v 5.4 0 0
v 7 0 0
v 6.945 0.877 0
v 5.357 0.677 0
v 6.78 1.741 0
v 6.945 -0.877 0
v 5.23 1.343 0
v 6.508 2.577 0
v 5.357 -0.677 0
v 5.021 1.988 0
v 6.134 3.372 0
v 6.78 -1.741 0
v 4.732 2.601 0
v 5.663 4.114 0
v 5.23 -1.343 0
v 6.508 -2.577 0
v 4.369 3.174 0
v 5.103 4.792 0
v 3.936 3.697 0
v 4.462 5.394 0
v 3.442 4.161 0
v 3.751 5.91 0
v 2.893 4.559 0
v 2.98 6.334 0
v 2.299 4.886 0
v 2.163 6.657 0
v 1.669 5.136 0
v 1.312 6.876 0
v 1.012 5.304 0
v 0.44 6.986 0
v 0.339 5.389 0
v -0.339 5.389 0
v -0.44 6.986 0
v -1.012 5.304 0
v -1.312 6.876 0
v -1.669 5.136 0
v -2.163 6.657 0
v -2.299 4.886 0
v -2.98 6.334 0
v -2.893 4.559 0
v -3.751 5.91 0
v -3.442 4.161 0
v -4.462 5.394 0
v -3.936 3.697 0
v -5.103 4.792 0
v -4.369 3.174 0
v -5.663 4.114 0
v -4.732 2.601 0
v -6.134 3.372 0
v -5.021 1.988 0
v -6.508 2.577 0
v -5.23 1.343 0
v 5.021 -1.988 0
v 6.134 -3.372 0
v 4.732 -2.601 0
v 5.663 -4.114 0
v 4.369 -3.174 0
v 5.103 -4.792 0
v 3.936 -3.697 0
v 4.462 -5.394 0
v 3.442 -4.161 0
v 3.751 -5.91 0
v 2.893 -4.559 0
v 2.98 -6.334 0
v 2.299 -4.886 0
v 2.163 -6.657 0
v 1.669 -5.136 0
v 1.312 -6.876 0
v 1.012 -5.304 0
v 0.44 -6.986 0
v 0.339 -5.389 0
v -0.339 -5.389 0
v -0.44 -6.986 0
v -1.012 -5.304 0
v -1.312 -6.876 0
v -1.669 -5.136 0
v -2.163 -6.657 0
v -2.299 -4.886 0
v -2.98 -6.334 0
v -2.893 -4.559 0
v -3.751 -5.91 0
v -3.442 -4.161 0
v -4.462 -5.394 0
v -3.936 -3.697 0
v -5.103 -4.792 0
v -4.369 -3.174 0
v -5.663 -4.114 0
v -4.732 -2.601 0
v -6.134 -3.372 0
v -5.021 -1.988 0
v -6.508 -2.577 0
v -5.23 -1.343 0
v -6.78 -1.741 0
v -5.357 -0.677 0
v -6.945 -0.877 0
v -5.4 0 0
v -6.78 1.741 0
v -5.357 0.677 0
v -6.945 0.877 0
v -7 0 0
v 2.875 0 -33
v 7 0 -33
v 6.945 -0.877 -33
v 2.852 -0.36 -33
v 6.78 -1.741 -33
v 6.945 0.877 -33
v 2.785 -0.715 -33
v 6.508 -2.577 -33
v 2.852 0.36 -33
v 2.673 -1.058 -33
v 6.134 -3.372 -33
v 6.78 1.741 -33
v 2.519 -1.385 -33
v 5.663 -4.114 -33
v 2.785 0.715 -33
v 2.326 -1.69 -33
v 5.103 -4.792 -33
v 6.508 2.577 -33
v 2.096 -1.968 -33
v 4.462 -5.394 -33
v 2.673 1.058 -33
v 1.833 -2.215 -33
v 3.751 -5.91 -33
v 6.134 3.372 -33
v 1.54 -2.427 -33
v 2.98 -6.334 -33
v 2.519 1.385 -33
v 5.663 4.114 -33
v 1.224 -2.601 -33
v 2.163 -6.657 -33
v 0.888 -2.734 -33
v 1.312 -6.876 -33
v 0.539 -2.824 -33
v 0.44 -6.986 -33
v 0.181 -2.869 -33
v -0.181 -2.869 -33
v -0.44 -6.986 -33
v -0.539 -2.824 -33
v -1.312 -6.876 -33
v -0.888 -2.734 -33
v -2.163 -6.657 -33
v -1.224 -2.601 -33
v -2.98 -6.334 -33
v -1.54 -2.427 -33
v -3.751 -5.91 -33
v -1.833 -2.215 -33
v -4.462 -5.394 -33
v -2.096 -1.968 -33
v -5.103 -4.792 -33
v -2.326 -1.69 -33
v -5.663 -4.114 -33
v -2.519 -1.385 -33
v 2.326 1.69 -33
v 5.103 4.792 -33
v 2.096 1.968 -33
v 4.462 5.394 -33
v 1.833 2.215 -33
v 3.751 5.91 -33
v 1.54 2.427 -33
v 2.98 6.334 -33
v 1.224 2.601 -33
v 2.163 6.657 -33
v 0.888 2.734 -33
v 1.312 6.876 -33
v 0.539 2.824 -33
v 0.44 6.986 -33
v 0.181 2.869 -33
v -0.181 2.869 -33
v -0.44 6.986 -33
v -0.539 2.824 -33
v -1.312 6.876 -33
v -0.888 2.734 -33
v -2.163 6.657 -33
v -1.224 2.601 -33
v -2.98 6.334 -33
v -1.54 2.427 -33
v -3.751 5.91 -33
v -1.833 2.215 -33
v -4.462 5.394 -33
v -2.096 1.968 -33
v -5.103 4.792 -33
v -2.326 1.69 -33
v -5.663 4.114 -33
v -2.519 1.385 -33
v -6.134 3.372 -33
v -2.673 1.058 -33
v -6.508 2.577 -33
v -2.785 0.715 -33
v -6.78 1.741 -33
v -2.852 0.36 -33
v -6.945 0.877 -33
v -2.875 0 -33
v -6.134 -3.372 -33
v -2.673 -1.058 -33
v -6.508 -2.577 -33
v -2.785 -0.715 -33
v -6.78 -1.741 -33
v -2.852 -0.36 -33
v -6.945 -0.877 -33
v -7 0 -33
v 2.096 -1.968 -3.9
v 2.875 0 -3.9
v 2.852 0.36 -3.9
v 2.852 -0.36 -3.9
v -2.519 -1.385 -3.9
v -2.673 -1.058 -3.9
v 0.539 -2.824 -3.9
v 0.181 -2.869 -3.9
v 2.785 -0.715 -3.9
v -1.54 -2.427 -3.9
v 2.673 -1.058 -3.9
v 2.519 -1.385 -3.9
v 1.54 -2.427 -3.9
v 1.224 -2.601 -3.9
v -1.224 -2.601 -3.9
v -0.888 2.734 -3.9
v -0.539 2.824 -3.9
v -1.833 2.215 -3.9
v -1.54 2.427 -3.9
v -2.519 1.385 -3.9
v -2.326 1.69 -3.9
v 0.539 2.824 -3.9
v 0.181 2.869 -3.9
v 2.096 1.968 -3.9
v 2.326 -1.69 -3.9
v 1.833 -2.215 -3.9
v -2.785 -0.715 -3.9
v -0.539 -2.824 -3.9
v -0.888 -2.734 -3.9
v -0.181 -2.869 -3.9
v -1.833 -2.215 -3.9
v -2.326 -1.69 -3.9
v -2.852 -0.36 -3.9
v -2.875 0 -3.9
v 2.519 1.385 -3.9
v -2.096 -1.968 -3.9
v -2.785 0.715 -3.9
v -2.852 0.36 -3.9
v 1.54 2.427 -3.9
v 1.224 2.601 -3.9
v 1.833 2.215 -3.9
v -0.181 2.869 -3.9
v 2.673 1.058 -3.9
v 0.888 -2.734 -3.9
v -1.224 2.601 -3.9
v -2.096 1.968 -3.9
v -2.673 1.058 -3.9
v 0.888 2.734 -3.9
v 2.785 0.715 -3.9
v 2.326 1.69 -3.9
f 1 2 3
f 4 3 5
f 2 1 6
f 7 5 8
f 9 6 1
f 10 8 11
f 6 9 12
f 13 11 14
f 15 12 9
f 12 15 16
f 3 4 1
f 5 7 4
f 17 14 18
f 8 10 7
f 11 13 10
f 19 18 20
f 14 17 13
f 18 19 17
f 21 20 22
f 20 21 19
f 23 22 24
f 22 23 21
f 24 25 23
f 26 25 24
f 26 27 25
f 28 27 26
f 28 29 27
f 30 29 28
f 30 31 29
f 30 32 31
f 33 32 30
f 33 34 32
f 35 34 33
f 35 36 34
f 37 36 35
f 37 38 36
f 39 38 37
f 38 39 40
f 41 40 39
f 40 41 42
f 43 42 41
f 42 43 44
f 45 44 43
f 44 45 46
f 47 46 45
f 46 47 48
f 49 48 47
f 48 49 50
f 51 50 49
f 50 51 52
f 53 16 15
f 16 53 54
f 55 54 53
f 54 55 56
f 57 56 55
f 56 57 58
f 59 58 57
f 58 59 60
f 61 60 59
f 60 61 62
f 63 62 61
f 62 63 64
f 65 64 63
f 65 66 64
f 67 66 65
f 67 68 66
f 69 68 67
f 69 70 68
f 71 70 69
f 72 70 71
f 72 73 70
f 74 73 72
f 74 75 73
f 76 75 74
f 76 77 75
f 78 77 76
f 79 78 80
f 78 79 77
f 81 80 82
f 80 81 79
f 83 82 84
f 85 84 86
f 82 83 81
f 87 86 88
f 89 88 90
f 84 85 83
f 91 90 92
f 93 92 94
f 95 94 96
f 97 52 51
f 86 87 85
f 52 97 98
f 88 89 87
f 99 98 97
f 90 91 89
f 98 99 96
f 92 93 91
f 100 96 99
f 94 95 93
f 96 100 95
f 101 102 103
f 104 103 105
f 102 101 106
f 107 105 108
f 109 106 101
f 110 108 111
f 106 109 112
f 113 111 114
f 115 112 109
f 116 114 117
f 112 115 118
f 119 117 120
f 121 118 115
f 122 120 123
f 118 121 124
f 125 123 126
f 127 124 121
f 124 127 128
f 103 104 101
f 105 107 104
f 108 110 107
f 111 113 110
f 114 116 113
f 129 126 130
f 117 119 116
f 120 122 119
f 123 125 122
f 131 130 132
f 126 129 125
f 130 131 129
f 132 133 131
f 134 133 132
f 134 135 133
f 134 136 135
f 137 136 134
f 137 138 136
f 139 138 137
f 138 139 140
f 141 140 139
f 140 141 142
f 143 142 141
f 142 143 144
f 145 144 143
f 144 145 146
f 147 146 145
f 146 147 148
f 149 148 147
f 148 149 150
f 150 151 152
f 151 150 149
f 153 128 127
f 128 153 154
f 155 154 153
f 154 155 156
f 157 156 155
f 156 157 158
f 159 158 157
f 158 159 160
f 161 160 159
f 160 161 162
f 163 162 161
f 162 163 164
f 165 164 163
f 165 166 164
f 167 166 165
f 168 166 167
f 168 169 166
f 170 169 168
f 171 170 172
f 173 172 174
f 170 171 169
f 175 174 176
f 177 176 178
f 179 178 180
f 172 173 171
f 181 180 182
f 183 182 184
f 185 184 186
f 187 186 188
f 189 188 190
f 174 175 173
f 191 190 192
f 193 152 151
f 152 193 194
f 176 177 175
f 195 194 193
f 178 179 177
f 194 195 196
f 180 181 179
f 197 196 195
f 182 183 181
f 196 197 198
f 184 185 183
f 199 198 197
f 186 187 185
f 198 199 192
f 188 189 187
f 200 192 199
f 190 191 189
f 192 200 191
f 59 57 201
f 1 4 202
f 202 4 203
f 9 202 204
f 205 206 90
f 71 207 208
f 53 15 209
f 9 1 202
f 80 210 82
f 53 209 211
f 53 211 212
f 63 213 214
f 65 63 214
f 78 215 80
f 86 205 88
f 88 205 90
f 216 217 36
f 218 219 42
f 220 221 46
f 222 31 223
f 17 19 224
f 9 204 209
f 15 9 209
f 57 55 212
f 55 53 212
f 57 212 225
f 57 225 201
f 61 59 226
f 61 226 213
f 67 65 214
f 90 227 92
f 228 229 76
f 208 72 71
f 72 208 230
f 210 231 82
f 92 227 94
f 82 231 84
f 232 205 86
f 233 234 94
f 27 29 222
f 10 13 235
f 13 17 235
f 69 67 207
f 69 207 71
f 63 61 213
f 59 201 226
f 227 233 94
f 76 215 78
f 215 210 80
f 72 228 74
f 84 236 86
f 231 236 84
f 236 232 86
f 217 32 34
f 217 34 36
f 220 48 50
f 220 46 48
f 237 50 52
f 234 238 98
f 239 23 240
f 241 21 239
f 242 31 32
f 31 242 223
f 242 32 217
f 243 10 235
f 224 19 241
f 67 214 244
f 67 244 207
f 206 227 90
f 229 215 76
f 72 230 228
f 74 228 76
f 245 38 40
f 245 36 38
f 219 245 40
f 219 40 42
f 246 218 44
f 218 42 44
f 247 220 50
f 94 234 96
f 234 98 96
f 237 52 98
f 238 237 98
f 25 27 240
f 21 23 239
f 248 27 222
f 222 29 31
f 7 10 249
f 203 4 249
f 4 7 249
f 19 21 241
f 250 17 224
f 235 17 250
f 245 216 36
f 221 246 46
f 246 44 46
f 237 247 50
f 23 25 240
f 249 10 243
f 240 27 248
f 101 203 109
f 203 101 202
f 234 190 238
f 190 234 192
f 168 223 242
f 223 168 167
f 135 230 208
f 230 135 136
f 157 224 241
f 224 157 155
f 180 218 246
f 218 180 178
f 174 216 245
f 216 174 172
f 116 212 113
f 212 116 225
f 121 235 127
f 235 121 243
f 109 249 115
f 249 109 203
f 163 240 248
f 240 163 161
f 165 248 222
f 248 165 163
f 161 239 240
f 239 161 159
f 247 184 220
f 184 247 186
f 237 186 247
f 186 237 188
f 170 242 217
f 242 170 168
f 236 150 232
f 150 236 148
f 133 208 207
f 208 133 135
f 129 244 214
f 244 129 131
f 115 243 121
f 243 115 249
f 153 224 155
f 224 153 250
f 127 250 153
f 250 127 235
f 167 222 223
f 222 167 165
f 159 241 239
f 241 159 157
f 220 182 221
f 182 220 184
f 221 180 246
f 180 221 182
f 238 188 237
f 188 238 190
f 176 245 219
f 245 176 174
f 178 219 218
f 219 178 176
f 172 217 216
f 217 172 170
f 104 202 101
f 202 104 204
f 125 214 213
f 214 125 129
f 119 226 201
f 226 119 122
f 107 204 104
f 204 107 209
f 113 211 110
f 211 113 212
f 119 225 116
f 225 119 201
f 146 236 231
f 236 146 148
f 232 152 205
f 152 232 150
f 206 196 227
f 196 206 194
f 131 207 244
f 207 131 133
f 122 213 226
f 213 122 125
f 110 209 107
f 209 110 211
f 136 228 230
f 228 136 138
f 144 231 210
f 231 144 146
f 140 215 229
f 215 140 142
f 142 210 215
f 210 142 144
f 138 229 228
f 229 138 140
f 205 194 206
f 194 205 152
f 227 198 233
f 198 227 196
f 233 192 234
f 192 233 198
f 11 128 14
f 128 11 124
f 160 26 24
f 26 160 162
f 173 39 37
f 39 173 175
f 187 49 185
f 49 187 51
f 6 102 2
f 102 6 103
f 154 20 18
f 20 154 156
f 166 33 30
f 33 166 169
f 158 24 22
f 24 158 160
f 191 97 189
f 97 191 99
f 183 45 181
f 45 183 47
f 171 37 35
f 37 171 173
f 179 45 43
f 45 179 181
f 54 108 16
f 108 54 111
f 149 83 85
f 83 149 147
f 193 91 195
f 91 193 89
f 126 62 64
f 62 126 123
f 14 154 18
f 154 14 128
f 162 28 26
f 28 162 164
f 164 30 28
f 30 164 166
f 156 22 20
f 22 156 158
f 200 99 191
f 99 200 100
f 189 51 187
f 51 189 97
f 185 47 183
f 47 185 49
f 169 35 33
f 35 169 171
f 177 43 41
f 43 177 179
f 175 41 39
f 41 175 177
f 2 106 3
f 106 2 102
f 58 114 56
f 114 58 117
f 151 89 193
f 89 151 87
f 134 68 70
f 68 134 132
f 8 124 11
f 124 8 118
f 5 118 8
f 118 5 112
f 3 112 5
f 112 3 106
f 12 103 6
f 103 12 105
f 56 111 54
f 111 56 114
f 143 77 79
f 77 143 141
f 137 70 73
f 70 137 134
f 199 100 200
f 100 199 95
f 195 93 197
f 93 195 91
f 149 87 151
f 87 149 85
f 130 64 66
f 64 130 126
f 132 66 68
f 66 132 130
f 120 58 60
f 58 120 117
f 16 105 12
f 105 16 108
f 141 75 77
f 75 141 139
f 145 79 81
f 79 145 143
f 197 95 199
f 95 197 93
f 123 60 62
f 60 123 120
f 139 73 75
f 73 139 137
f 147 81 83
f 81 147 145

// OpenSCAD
$fn = 50;


difference() {
	union() {
		translate(v = [0, 0, -33.0000000000]) {
			cylinder(h = 33, r = 7.0000000000);
		}
		cylinder(h = 0, r = 16.0000000000);
	}
	union() {
		translate(v = [0, 0, 0]) {
			rotate(a = [0, 0, 0]) {
				difference() {
					union() {
						#translate(v = [0, 0, -33.0000000000]) {
							cylinder(h = 33, r = 2.6000000000);
						}
						#translate(v = [0, 0, -3.9000000000]) {
							cylinder(h = 3.9000000000, r1 = 2.8750000000, r2 = 5.4000000000);
						}
						#translate(v = [0, 0, -33.0000000000]) {
							cylinder(h = 33, r = 2.8750000000);
						}
						#translate(v = [0, 0, -33.0000000000]) {
							cylinder(h = 33, r = 2.6000000000);
						}
					}
					union();
				}
			}
		}
	}
}
